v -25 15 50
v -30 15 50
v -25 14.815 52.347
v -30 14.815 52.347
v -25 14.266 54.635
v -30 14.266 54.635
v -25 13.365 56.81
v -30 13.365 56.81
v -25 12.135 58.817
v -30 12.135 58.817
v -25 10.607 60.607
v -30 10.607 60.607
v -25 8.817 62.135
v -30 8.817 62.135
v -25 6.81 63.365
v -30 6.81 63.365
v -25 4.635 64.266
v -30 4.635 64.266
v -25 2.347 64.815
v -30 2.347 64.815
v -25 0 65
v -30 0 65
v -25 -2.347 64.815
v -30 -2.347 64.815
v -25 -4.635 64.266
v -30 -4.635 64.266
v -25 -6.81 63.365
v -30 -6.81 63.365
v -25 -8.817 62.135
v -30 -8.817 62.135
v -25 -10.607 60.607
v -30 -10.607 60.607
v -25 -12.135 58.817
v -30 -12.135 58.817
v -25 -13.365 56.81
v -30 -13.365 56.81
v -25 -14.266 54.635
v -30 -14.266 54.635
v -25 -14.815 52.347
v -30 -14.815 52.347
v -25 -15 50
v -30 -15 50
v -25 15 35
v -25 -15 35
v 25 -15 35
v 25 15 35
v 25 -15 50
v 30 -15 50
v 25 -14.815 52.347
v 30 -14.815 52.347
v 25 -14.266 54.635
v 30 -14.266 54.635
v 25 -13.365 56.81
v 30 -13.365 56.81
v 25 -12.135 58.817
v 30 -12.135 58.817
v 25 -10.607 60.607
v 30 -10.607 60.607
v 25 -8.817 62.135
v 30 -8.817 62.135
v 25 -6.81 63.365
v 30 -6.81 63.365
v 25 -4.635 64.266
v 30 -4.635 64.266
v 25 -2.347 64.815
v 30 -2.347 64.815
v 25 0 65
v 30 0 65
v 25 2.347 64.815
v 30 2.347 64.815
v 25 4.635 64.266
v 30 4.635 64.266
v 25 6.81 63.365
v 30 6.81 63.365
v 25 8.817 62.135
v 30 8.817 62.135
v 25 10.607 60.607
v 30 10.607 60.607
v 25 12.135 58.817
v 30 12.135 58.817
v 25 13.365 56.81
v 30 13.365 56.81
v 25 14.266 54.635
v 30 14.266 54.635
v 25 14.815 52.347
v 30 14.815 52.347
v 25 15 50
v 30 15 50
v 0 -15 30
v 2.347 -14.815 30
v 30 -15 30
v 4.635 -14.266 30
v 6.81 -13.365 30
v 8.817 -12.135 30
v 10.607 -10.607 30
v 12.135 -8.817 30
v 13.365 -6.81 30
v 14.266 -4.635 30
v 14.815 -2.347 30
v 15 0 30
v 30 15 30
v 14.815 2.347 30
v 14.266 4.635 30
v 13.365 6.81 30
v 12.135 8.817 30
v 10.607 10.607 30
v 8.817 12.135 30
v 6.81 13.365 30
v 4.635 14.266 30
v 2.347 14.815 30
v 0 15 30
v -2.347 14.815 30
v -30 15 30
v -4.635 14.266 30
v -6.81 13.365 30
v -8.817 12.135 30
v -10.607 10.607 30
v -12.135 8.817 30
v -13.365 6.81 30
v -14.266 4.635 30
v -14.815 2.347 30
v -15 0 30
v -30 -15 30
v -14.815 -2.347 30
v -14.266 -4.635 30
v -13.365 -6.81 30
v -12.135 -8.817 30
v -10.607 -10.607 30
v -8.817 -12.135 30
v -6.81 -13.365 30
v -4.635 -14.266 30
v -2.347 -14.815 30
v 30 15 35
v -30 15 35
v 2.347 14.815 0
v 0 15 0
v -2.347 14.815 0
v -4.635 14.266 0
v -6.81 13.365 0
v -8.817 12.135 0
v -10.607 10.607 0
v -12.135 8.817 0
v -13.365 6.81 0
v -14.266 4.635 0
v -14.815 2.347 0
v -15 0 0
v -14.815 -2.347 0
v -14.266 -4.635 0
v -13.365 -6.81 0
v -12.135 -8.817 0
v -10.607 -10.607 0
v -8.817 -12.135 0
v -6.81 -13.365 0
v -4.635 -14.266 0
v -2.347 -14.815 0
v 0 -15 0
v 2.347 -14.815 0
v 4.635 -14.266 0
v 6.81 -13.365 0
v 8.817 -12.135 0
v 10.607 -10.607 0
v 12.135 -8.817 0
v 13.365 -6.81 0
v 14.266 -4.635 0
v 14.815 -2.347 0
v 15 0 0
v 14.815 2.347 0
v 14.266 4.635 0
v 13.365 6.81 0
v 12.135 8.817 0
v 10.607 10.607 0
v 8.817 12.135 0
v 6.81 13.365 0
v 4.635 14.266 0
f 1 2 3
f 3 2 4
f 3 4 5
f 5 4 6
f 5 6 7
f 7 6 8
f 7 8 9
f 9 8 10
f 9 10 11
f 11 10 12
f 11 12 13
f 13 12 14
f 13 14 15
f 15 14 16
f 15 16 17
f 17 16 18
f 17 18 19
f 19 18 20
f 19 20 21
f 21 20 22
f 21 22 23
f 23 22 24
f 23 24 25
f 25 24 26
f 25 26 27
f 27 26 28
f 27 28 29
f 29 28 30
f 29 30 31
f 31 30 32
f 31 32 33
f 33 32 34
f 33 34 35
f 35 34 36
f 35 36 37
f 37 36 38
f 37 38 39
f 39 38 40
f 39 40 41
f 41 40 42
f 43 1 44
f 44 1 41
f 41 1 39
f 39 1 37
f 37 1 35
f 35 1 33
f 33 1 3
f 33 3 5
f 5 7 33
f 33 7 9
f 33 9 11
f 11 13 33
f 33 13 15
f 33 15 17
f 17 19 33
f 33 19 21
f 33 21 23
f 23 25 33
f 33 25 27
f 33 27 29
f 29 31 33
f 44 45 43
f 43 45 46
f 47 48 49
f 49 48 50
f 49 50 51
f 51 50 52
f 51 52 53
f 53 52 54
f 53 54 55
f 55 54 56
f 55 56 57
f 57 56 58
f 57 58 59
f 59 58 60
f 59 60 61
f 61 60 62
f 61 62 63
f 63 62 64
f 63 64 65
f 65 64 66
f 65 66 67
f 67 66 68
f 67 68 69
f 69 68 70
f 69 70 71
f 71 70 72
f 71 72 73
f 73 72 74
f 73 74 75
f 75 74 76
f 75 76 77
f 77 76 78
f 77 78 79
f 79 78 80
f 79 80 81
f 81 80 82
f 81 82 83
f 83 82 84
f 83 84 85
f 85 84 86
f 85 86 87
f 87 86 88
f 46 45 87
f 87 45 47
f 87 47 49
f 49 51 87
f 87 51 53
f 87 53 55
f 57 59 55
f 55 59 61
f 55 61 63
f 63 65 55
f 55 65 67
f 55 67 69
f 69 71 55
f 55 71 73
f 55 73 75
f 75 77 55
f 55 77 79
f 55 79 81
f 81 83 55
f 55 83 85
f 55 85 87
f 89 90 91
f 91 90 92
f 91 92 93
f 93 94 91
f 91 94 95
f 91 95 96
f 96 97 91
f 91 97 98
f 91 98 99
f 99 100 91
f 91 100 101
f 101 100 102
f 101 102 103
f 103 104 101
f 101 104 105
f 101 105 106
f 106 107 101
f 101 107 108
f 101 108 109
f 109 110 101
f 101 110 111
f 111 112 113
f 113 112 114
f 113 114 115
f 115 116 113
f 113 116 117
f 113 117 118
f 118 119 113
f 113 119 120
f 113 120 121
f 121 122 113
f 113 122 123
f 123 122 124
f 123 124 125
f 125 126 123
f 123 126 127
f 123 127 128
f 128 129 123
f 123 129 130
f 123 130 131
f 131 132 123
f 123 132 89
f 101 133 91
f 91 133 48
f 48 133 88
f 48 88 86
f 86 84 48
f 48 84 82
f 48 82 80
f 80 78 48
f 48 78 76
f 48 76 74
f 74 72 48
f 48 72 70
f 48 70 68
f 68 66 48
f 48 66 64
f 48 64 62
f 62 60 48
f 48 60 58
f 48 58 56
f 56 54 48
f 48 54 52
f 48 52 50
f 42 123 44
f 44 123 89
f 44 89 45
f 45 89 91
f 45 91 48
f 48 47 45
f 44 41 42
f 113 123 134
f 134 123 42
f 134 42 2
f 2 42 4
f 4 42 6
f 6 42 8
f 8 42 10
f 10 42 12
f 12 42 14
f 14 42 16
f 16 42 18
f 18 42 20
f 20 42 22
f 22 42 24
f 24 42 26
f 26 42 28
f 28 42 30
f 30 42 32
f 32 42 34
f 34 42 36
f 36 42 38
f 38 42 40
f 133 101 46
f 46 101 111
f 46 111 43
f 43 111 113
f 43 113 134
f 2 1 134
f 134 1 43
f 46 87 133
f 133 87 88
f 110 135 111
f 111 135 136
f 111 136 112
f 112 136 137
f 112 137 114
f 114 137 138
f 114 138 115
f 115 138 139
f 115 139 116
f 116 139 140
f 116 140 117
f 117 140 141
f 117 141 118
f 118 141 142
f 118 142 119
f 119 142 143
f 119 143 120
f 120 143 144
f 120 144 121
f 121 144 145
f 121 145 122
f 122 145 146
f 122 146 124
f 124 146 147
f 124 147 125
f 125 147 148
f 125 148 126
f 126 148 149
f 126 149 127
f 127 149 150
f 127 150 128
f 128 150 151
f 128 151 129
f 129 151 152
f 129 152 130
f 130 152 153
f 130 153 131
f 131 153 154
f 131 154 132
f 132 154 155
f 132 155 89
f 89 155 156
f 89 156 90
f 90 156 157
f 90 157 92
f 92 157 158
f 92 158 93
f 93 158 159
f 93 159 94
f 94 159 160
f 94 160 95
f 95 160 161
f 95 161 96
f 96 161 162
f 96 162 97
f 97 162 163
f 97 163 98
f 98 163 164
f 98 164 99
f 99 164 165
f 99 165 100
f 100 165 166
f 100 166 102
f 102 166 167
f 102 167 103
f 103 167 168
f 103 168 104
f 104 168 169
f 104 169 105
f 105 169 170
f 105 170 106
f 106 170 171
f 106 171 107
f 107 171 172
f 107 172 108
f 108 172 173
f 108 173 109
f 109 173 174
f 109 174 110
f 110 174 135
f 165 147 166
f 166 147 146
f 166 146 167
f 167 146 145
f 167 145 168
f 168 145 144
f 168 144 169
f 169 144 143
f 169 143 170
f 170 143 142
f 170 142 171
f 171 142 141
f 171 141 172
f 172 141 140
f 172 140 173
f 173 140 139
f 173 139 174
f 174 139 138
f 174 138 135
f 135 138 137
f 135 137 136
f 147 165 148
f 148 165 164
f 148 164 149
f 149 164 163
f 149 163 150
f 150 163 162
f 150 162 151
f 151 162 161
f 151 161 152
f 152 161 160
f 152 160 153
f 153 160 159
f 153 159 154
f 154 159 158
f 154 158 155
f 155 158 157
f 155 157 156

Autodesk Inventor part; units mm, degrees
ref_plane "YZ Plane" through (0, 0, 0) normal (1, 0, 0) x (0, 1, 0)
ref_plane "XZ Plane" through (0, 0, 0) normal (0, 1, 0) x (-1, 0, 0)
ref_plane "XY Plane" through (0, 0, 0) normal (0, 0, 1) x (1, 0, 0)
sketch "스케치1" plane through (0, 0, 0) normal (0, 0, 1) x (1, 0, 0)
  circle A0 centre (0, 0) radius 15
  dimension "d0" = 30
extrude "돌출1" add sketch "스케치1" along normal blind 30
sketch "스케치2" plane through (0, 0, 30) normal (0, 0, 1) x (1, 0, 0)
  line L0 (30, 15) -> (-30, 15)
  line L1 (-30, 15) -> (-30, -15)
  line L2 (-30, -15) -> (30, -15)
  line L3 (30, -15) -> (30, 15)
  line L4 (30, 15) -> (-30, -15) construction
  line L5 (-30, 15) -> (30, -15) construction
  point P0 (0, 0)
  dimension "d3" = 60
  dimension "d4" = 30
extrude "돌출2" add sketch "스케치2" along normal blind 5
sketch "스케치3" plane through (30, -15, 30) normal (1, 0, 0) x (0, 0, -1)
  line L0 (0, 0) -> (0, 30) projected
  line L1 (0, 30) -> (-5, 30) projected
  line L2 (-5, 0) -> (-5, 30) projected
  line L3 (0, 0) -> (-5, 0) projected
  line L4 (-5, 0) -> (-20, 0)
  line L5 (-20, 30) -> (-5, 30)
  line L6 (-5, 30) -> (-5, 0)
  line L7 (0, 0) -> (-5, 0) projected
  line L8 (0, 30) -> (-5, 30) projected
  arc A0 (-20, 30) -> (-20, 0) centre (-20, 15) ccw
  point P0 (30, 15)
  dimension "d10" = 15
  dimension "d11" = 15
  dimension "d12" = 15
extrude "돌출3" add sketch "스케치3" against normal blind 5 contours L4 A0 L5 L2
mirror "미러1" about plane through (0, 0, 0) normal (1, 0, 0) of "돌출3"
ref_plane "작업 평면1" through (0, 0, 0) normal (1, 0, 0) x (0, 1, 0)
properties part number "L1_0.1" material "ABS 플라스틱"
